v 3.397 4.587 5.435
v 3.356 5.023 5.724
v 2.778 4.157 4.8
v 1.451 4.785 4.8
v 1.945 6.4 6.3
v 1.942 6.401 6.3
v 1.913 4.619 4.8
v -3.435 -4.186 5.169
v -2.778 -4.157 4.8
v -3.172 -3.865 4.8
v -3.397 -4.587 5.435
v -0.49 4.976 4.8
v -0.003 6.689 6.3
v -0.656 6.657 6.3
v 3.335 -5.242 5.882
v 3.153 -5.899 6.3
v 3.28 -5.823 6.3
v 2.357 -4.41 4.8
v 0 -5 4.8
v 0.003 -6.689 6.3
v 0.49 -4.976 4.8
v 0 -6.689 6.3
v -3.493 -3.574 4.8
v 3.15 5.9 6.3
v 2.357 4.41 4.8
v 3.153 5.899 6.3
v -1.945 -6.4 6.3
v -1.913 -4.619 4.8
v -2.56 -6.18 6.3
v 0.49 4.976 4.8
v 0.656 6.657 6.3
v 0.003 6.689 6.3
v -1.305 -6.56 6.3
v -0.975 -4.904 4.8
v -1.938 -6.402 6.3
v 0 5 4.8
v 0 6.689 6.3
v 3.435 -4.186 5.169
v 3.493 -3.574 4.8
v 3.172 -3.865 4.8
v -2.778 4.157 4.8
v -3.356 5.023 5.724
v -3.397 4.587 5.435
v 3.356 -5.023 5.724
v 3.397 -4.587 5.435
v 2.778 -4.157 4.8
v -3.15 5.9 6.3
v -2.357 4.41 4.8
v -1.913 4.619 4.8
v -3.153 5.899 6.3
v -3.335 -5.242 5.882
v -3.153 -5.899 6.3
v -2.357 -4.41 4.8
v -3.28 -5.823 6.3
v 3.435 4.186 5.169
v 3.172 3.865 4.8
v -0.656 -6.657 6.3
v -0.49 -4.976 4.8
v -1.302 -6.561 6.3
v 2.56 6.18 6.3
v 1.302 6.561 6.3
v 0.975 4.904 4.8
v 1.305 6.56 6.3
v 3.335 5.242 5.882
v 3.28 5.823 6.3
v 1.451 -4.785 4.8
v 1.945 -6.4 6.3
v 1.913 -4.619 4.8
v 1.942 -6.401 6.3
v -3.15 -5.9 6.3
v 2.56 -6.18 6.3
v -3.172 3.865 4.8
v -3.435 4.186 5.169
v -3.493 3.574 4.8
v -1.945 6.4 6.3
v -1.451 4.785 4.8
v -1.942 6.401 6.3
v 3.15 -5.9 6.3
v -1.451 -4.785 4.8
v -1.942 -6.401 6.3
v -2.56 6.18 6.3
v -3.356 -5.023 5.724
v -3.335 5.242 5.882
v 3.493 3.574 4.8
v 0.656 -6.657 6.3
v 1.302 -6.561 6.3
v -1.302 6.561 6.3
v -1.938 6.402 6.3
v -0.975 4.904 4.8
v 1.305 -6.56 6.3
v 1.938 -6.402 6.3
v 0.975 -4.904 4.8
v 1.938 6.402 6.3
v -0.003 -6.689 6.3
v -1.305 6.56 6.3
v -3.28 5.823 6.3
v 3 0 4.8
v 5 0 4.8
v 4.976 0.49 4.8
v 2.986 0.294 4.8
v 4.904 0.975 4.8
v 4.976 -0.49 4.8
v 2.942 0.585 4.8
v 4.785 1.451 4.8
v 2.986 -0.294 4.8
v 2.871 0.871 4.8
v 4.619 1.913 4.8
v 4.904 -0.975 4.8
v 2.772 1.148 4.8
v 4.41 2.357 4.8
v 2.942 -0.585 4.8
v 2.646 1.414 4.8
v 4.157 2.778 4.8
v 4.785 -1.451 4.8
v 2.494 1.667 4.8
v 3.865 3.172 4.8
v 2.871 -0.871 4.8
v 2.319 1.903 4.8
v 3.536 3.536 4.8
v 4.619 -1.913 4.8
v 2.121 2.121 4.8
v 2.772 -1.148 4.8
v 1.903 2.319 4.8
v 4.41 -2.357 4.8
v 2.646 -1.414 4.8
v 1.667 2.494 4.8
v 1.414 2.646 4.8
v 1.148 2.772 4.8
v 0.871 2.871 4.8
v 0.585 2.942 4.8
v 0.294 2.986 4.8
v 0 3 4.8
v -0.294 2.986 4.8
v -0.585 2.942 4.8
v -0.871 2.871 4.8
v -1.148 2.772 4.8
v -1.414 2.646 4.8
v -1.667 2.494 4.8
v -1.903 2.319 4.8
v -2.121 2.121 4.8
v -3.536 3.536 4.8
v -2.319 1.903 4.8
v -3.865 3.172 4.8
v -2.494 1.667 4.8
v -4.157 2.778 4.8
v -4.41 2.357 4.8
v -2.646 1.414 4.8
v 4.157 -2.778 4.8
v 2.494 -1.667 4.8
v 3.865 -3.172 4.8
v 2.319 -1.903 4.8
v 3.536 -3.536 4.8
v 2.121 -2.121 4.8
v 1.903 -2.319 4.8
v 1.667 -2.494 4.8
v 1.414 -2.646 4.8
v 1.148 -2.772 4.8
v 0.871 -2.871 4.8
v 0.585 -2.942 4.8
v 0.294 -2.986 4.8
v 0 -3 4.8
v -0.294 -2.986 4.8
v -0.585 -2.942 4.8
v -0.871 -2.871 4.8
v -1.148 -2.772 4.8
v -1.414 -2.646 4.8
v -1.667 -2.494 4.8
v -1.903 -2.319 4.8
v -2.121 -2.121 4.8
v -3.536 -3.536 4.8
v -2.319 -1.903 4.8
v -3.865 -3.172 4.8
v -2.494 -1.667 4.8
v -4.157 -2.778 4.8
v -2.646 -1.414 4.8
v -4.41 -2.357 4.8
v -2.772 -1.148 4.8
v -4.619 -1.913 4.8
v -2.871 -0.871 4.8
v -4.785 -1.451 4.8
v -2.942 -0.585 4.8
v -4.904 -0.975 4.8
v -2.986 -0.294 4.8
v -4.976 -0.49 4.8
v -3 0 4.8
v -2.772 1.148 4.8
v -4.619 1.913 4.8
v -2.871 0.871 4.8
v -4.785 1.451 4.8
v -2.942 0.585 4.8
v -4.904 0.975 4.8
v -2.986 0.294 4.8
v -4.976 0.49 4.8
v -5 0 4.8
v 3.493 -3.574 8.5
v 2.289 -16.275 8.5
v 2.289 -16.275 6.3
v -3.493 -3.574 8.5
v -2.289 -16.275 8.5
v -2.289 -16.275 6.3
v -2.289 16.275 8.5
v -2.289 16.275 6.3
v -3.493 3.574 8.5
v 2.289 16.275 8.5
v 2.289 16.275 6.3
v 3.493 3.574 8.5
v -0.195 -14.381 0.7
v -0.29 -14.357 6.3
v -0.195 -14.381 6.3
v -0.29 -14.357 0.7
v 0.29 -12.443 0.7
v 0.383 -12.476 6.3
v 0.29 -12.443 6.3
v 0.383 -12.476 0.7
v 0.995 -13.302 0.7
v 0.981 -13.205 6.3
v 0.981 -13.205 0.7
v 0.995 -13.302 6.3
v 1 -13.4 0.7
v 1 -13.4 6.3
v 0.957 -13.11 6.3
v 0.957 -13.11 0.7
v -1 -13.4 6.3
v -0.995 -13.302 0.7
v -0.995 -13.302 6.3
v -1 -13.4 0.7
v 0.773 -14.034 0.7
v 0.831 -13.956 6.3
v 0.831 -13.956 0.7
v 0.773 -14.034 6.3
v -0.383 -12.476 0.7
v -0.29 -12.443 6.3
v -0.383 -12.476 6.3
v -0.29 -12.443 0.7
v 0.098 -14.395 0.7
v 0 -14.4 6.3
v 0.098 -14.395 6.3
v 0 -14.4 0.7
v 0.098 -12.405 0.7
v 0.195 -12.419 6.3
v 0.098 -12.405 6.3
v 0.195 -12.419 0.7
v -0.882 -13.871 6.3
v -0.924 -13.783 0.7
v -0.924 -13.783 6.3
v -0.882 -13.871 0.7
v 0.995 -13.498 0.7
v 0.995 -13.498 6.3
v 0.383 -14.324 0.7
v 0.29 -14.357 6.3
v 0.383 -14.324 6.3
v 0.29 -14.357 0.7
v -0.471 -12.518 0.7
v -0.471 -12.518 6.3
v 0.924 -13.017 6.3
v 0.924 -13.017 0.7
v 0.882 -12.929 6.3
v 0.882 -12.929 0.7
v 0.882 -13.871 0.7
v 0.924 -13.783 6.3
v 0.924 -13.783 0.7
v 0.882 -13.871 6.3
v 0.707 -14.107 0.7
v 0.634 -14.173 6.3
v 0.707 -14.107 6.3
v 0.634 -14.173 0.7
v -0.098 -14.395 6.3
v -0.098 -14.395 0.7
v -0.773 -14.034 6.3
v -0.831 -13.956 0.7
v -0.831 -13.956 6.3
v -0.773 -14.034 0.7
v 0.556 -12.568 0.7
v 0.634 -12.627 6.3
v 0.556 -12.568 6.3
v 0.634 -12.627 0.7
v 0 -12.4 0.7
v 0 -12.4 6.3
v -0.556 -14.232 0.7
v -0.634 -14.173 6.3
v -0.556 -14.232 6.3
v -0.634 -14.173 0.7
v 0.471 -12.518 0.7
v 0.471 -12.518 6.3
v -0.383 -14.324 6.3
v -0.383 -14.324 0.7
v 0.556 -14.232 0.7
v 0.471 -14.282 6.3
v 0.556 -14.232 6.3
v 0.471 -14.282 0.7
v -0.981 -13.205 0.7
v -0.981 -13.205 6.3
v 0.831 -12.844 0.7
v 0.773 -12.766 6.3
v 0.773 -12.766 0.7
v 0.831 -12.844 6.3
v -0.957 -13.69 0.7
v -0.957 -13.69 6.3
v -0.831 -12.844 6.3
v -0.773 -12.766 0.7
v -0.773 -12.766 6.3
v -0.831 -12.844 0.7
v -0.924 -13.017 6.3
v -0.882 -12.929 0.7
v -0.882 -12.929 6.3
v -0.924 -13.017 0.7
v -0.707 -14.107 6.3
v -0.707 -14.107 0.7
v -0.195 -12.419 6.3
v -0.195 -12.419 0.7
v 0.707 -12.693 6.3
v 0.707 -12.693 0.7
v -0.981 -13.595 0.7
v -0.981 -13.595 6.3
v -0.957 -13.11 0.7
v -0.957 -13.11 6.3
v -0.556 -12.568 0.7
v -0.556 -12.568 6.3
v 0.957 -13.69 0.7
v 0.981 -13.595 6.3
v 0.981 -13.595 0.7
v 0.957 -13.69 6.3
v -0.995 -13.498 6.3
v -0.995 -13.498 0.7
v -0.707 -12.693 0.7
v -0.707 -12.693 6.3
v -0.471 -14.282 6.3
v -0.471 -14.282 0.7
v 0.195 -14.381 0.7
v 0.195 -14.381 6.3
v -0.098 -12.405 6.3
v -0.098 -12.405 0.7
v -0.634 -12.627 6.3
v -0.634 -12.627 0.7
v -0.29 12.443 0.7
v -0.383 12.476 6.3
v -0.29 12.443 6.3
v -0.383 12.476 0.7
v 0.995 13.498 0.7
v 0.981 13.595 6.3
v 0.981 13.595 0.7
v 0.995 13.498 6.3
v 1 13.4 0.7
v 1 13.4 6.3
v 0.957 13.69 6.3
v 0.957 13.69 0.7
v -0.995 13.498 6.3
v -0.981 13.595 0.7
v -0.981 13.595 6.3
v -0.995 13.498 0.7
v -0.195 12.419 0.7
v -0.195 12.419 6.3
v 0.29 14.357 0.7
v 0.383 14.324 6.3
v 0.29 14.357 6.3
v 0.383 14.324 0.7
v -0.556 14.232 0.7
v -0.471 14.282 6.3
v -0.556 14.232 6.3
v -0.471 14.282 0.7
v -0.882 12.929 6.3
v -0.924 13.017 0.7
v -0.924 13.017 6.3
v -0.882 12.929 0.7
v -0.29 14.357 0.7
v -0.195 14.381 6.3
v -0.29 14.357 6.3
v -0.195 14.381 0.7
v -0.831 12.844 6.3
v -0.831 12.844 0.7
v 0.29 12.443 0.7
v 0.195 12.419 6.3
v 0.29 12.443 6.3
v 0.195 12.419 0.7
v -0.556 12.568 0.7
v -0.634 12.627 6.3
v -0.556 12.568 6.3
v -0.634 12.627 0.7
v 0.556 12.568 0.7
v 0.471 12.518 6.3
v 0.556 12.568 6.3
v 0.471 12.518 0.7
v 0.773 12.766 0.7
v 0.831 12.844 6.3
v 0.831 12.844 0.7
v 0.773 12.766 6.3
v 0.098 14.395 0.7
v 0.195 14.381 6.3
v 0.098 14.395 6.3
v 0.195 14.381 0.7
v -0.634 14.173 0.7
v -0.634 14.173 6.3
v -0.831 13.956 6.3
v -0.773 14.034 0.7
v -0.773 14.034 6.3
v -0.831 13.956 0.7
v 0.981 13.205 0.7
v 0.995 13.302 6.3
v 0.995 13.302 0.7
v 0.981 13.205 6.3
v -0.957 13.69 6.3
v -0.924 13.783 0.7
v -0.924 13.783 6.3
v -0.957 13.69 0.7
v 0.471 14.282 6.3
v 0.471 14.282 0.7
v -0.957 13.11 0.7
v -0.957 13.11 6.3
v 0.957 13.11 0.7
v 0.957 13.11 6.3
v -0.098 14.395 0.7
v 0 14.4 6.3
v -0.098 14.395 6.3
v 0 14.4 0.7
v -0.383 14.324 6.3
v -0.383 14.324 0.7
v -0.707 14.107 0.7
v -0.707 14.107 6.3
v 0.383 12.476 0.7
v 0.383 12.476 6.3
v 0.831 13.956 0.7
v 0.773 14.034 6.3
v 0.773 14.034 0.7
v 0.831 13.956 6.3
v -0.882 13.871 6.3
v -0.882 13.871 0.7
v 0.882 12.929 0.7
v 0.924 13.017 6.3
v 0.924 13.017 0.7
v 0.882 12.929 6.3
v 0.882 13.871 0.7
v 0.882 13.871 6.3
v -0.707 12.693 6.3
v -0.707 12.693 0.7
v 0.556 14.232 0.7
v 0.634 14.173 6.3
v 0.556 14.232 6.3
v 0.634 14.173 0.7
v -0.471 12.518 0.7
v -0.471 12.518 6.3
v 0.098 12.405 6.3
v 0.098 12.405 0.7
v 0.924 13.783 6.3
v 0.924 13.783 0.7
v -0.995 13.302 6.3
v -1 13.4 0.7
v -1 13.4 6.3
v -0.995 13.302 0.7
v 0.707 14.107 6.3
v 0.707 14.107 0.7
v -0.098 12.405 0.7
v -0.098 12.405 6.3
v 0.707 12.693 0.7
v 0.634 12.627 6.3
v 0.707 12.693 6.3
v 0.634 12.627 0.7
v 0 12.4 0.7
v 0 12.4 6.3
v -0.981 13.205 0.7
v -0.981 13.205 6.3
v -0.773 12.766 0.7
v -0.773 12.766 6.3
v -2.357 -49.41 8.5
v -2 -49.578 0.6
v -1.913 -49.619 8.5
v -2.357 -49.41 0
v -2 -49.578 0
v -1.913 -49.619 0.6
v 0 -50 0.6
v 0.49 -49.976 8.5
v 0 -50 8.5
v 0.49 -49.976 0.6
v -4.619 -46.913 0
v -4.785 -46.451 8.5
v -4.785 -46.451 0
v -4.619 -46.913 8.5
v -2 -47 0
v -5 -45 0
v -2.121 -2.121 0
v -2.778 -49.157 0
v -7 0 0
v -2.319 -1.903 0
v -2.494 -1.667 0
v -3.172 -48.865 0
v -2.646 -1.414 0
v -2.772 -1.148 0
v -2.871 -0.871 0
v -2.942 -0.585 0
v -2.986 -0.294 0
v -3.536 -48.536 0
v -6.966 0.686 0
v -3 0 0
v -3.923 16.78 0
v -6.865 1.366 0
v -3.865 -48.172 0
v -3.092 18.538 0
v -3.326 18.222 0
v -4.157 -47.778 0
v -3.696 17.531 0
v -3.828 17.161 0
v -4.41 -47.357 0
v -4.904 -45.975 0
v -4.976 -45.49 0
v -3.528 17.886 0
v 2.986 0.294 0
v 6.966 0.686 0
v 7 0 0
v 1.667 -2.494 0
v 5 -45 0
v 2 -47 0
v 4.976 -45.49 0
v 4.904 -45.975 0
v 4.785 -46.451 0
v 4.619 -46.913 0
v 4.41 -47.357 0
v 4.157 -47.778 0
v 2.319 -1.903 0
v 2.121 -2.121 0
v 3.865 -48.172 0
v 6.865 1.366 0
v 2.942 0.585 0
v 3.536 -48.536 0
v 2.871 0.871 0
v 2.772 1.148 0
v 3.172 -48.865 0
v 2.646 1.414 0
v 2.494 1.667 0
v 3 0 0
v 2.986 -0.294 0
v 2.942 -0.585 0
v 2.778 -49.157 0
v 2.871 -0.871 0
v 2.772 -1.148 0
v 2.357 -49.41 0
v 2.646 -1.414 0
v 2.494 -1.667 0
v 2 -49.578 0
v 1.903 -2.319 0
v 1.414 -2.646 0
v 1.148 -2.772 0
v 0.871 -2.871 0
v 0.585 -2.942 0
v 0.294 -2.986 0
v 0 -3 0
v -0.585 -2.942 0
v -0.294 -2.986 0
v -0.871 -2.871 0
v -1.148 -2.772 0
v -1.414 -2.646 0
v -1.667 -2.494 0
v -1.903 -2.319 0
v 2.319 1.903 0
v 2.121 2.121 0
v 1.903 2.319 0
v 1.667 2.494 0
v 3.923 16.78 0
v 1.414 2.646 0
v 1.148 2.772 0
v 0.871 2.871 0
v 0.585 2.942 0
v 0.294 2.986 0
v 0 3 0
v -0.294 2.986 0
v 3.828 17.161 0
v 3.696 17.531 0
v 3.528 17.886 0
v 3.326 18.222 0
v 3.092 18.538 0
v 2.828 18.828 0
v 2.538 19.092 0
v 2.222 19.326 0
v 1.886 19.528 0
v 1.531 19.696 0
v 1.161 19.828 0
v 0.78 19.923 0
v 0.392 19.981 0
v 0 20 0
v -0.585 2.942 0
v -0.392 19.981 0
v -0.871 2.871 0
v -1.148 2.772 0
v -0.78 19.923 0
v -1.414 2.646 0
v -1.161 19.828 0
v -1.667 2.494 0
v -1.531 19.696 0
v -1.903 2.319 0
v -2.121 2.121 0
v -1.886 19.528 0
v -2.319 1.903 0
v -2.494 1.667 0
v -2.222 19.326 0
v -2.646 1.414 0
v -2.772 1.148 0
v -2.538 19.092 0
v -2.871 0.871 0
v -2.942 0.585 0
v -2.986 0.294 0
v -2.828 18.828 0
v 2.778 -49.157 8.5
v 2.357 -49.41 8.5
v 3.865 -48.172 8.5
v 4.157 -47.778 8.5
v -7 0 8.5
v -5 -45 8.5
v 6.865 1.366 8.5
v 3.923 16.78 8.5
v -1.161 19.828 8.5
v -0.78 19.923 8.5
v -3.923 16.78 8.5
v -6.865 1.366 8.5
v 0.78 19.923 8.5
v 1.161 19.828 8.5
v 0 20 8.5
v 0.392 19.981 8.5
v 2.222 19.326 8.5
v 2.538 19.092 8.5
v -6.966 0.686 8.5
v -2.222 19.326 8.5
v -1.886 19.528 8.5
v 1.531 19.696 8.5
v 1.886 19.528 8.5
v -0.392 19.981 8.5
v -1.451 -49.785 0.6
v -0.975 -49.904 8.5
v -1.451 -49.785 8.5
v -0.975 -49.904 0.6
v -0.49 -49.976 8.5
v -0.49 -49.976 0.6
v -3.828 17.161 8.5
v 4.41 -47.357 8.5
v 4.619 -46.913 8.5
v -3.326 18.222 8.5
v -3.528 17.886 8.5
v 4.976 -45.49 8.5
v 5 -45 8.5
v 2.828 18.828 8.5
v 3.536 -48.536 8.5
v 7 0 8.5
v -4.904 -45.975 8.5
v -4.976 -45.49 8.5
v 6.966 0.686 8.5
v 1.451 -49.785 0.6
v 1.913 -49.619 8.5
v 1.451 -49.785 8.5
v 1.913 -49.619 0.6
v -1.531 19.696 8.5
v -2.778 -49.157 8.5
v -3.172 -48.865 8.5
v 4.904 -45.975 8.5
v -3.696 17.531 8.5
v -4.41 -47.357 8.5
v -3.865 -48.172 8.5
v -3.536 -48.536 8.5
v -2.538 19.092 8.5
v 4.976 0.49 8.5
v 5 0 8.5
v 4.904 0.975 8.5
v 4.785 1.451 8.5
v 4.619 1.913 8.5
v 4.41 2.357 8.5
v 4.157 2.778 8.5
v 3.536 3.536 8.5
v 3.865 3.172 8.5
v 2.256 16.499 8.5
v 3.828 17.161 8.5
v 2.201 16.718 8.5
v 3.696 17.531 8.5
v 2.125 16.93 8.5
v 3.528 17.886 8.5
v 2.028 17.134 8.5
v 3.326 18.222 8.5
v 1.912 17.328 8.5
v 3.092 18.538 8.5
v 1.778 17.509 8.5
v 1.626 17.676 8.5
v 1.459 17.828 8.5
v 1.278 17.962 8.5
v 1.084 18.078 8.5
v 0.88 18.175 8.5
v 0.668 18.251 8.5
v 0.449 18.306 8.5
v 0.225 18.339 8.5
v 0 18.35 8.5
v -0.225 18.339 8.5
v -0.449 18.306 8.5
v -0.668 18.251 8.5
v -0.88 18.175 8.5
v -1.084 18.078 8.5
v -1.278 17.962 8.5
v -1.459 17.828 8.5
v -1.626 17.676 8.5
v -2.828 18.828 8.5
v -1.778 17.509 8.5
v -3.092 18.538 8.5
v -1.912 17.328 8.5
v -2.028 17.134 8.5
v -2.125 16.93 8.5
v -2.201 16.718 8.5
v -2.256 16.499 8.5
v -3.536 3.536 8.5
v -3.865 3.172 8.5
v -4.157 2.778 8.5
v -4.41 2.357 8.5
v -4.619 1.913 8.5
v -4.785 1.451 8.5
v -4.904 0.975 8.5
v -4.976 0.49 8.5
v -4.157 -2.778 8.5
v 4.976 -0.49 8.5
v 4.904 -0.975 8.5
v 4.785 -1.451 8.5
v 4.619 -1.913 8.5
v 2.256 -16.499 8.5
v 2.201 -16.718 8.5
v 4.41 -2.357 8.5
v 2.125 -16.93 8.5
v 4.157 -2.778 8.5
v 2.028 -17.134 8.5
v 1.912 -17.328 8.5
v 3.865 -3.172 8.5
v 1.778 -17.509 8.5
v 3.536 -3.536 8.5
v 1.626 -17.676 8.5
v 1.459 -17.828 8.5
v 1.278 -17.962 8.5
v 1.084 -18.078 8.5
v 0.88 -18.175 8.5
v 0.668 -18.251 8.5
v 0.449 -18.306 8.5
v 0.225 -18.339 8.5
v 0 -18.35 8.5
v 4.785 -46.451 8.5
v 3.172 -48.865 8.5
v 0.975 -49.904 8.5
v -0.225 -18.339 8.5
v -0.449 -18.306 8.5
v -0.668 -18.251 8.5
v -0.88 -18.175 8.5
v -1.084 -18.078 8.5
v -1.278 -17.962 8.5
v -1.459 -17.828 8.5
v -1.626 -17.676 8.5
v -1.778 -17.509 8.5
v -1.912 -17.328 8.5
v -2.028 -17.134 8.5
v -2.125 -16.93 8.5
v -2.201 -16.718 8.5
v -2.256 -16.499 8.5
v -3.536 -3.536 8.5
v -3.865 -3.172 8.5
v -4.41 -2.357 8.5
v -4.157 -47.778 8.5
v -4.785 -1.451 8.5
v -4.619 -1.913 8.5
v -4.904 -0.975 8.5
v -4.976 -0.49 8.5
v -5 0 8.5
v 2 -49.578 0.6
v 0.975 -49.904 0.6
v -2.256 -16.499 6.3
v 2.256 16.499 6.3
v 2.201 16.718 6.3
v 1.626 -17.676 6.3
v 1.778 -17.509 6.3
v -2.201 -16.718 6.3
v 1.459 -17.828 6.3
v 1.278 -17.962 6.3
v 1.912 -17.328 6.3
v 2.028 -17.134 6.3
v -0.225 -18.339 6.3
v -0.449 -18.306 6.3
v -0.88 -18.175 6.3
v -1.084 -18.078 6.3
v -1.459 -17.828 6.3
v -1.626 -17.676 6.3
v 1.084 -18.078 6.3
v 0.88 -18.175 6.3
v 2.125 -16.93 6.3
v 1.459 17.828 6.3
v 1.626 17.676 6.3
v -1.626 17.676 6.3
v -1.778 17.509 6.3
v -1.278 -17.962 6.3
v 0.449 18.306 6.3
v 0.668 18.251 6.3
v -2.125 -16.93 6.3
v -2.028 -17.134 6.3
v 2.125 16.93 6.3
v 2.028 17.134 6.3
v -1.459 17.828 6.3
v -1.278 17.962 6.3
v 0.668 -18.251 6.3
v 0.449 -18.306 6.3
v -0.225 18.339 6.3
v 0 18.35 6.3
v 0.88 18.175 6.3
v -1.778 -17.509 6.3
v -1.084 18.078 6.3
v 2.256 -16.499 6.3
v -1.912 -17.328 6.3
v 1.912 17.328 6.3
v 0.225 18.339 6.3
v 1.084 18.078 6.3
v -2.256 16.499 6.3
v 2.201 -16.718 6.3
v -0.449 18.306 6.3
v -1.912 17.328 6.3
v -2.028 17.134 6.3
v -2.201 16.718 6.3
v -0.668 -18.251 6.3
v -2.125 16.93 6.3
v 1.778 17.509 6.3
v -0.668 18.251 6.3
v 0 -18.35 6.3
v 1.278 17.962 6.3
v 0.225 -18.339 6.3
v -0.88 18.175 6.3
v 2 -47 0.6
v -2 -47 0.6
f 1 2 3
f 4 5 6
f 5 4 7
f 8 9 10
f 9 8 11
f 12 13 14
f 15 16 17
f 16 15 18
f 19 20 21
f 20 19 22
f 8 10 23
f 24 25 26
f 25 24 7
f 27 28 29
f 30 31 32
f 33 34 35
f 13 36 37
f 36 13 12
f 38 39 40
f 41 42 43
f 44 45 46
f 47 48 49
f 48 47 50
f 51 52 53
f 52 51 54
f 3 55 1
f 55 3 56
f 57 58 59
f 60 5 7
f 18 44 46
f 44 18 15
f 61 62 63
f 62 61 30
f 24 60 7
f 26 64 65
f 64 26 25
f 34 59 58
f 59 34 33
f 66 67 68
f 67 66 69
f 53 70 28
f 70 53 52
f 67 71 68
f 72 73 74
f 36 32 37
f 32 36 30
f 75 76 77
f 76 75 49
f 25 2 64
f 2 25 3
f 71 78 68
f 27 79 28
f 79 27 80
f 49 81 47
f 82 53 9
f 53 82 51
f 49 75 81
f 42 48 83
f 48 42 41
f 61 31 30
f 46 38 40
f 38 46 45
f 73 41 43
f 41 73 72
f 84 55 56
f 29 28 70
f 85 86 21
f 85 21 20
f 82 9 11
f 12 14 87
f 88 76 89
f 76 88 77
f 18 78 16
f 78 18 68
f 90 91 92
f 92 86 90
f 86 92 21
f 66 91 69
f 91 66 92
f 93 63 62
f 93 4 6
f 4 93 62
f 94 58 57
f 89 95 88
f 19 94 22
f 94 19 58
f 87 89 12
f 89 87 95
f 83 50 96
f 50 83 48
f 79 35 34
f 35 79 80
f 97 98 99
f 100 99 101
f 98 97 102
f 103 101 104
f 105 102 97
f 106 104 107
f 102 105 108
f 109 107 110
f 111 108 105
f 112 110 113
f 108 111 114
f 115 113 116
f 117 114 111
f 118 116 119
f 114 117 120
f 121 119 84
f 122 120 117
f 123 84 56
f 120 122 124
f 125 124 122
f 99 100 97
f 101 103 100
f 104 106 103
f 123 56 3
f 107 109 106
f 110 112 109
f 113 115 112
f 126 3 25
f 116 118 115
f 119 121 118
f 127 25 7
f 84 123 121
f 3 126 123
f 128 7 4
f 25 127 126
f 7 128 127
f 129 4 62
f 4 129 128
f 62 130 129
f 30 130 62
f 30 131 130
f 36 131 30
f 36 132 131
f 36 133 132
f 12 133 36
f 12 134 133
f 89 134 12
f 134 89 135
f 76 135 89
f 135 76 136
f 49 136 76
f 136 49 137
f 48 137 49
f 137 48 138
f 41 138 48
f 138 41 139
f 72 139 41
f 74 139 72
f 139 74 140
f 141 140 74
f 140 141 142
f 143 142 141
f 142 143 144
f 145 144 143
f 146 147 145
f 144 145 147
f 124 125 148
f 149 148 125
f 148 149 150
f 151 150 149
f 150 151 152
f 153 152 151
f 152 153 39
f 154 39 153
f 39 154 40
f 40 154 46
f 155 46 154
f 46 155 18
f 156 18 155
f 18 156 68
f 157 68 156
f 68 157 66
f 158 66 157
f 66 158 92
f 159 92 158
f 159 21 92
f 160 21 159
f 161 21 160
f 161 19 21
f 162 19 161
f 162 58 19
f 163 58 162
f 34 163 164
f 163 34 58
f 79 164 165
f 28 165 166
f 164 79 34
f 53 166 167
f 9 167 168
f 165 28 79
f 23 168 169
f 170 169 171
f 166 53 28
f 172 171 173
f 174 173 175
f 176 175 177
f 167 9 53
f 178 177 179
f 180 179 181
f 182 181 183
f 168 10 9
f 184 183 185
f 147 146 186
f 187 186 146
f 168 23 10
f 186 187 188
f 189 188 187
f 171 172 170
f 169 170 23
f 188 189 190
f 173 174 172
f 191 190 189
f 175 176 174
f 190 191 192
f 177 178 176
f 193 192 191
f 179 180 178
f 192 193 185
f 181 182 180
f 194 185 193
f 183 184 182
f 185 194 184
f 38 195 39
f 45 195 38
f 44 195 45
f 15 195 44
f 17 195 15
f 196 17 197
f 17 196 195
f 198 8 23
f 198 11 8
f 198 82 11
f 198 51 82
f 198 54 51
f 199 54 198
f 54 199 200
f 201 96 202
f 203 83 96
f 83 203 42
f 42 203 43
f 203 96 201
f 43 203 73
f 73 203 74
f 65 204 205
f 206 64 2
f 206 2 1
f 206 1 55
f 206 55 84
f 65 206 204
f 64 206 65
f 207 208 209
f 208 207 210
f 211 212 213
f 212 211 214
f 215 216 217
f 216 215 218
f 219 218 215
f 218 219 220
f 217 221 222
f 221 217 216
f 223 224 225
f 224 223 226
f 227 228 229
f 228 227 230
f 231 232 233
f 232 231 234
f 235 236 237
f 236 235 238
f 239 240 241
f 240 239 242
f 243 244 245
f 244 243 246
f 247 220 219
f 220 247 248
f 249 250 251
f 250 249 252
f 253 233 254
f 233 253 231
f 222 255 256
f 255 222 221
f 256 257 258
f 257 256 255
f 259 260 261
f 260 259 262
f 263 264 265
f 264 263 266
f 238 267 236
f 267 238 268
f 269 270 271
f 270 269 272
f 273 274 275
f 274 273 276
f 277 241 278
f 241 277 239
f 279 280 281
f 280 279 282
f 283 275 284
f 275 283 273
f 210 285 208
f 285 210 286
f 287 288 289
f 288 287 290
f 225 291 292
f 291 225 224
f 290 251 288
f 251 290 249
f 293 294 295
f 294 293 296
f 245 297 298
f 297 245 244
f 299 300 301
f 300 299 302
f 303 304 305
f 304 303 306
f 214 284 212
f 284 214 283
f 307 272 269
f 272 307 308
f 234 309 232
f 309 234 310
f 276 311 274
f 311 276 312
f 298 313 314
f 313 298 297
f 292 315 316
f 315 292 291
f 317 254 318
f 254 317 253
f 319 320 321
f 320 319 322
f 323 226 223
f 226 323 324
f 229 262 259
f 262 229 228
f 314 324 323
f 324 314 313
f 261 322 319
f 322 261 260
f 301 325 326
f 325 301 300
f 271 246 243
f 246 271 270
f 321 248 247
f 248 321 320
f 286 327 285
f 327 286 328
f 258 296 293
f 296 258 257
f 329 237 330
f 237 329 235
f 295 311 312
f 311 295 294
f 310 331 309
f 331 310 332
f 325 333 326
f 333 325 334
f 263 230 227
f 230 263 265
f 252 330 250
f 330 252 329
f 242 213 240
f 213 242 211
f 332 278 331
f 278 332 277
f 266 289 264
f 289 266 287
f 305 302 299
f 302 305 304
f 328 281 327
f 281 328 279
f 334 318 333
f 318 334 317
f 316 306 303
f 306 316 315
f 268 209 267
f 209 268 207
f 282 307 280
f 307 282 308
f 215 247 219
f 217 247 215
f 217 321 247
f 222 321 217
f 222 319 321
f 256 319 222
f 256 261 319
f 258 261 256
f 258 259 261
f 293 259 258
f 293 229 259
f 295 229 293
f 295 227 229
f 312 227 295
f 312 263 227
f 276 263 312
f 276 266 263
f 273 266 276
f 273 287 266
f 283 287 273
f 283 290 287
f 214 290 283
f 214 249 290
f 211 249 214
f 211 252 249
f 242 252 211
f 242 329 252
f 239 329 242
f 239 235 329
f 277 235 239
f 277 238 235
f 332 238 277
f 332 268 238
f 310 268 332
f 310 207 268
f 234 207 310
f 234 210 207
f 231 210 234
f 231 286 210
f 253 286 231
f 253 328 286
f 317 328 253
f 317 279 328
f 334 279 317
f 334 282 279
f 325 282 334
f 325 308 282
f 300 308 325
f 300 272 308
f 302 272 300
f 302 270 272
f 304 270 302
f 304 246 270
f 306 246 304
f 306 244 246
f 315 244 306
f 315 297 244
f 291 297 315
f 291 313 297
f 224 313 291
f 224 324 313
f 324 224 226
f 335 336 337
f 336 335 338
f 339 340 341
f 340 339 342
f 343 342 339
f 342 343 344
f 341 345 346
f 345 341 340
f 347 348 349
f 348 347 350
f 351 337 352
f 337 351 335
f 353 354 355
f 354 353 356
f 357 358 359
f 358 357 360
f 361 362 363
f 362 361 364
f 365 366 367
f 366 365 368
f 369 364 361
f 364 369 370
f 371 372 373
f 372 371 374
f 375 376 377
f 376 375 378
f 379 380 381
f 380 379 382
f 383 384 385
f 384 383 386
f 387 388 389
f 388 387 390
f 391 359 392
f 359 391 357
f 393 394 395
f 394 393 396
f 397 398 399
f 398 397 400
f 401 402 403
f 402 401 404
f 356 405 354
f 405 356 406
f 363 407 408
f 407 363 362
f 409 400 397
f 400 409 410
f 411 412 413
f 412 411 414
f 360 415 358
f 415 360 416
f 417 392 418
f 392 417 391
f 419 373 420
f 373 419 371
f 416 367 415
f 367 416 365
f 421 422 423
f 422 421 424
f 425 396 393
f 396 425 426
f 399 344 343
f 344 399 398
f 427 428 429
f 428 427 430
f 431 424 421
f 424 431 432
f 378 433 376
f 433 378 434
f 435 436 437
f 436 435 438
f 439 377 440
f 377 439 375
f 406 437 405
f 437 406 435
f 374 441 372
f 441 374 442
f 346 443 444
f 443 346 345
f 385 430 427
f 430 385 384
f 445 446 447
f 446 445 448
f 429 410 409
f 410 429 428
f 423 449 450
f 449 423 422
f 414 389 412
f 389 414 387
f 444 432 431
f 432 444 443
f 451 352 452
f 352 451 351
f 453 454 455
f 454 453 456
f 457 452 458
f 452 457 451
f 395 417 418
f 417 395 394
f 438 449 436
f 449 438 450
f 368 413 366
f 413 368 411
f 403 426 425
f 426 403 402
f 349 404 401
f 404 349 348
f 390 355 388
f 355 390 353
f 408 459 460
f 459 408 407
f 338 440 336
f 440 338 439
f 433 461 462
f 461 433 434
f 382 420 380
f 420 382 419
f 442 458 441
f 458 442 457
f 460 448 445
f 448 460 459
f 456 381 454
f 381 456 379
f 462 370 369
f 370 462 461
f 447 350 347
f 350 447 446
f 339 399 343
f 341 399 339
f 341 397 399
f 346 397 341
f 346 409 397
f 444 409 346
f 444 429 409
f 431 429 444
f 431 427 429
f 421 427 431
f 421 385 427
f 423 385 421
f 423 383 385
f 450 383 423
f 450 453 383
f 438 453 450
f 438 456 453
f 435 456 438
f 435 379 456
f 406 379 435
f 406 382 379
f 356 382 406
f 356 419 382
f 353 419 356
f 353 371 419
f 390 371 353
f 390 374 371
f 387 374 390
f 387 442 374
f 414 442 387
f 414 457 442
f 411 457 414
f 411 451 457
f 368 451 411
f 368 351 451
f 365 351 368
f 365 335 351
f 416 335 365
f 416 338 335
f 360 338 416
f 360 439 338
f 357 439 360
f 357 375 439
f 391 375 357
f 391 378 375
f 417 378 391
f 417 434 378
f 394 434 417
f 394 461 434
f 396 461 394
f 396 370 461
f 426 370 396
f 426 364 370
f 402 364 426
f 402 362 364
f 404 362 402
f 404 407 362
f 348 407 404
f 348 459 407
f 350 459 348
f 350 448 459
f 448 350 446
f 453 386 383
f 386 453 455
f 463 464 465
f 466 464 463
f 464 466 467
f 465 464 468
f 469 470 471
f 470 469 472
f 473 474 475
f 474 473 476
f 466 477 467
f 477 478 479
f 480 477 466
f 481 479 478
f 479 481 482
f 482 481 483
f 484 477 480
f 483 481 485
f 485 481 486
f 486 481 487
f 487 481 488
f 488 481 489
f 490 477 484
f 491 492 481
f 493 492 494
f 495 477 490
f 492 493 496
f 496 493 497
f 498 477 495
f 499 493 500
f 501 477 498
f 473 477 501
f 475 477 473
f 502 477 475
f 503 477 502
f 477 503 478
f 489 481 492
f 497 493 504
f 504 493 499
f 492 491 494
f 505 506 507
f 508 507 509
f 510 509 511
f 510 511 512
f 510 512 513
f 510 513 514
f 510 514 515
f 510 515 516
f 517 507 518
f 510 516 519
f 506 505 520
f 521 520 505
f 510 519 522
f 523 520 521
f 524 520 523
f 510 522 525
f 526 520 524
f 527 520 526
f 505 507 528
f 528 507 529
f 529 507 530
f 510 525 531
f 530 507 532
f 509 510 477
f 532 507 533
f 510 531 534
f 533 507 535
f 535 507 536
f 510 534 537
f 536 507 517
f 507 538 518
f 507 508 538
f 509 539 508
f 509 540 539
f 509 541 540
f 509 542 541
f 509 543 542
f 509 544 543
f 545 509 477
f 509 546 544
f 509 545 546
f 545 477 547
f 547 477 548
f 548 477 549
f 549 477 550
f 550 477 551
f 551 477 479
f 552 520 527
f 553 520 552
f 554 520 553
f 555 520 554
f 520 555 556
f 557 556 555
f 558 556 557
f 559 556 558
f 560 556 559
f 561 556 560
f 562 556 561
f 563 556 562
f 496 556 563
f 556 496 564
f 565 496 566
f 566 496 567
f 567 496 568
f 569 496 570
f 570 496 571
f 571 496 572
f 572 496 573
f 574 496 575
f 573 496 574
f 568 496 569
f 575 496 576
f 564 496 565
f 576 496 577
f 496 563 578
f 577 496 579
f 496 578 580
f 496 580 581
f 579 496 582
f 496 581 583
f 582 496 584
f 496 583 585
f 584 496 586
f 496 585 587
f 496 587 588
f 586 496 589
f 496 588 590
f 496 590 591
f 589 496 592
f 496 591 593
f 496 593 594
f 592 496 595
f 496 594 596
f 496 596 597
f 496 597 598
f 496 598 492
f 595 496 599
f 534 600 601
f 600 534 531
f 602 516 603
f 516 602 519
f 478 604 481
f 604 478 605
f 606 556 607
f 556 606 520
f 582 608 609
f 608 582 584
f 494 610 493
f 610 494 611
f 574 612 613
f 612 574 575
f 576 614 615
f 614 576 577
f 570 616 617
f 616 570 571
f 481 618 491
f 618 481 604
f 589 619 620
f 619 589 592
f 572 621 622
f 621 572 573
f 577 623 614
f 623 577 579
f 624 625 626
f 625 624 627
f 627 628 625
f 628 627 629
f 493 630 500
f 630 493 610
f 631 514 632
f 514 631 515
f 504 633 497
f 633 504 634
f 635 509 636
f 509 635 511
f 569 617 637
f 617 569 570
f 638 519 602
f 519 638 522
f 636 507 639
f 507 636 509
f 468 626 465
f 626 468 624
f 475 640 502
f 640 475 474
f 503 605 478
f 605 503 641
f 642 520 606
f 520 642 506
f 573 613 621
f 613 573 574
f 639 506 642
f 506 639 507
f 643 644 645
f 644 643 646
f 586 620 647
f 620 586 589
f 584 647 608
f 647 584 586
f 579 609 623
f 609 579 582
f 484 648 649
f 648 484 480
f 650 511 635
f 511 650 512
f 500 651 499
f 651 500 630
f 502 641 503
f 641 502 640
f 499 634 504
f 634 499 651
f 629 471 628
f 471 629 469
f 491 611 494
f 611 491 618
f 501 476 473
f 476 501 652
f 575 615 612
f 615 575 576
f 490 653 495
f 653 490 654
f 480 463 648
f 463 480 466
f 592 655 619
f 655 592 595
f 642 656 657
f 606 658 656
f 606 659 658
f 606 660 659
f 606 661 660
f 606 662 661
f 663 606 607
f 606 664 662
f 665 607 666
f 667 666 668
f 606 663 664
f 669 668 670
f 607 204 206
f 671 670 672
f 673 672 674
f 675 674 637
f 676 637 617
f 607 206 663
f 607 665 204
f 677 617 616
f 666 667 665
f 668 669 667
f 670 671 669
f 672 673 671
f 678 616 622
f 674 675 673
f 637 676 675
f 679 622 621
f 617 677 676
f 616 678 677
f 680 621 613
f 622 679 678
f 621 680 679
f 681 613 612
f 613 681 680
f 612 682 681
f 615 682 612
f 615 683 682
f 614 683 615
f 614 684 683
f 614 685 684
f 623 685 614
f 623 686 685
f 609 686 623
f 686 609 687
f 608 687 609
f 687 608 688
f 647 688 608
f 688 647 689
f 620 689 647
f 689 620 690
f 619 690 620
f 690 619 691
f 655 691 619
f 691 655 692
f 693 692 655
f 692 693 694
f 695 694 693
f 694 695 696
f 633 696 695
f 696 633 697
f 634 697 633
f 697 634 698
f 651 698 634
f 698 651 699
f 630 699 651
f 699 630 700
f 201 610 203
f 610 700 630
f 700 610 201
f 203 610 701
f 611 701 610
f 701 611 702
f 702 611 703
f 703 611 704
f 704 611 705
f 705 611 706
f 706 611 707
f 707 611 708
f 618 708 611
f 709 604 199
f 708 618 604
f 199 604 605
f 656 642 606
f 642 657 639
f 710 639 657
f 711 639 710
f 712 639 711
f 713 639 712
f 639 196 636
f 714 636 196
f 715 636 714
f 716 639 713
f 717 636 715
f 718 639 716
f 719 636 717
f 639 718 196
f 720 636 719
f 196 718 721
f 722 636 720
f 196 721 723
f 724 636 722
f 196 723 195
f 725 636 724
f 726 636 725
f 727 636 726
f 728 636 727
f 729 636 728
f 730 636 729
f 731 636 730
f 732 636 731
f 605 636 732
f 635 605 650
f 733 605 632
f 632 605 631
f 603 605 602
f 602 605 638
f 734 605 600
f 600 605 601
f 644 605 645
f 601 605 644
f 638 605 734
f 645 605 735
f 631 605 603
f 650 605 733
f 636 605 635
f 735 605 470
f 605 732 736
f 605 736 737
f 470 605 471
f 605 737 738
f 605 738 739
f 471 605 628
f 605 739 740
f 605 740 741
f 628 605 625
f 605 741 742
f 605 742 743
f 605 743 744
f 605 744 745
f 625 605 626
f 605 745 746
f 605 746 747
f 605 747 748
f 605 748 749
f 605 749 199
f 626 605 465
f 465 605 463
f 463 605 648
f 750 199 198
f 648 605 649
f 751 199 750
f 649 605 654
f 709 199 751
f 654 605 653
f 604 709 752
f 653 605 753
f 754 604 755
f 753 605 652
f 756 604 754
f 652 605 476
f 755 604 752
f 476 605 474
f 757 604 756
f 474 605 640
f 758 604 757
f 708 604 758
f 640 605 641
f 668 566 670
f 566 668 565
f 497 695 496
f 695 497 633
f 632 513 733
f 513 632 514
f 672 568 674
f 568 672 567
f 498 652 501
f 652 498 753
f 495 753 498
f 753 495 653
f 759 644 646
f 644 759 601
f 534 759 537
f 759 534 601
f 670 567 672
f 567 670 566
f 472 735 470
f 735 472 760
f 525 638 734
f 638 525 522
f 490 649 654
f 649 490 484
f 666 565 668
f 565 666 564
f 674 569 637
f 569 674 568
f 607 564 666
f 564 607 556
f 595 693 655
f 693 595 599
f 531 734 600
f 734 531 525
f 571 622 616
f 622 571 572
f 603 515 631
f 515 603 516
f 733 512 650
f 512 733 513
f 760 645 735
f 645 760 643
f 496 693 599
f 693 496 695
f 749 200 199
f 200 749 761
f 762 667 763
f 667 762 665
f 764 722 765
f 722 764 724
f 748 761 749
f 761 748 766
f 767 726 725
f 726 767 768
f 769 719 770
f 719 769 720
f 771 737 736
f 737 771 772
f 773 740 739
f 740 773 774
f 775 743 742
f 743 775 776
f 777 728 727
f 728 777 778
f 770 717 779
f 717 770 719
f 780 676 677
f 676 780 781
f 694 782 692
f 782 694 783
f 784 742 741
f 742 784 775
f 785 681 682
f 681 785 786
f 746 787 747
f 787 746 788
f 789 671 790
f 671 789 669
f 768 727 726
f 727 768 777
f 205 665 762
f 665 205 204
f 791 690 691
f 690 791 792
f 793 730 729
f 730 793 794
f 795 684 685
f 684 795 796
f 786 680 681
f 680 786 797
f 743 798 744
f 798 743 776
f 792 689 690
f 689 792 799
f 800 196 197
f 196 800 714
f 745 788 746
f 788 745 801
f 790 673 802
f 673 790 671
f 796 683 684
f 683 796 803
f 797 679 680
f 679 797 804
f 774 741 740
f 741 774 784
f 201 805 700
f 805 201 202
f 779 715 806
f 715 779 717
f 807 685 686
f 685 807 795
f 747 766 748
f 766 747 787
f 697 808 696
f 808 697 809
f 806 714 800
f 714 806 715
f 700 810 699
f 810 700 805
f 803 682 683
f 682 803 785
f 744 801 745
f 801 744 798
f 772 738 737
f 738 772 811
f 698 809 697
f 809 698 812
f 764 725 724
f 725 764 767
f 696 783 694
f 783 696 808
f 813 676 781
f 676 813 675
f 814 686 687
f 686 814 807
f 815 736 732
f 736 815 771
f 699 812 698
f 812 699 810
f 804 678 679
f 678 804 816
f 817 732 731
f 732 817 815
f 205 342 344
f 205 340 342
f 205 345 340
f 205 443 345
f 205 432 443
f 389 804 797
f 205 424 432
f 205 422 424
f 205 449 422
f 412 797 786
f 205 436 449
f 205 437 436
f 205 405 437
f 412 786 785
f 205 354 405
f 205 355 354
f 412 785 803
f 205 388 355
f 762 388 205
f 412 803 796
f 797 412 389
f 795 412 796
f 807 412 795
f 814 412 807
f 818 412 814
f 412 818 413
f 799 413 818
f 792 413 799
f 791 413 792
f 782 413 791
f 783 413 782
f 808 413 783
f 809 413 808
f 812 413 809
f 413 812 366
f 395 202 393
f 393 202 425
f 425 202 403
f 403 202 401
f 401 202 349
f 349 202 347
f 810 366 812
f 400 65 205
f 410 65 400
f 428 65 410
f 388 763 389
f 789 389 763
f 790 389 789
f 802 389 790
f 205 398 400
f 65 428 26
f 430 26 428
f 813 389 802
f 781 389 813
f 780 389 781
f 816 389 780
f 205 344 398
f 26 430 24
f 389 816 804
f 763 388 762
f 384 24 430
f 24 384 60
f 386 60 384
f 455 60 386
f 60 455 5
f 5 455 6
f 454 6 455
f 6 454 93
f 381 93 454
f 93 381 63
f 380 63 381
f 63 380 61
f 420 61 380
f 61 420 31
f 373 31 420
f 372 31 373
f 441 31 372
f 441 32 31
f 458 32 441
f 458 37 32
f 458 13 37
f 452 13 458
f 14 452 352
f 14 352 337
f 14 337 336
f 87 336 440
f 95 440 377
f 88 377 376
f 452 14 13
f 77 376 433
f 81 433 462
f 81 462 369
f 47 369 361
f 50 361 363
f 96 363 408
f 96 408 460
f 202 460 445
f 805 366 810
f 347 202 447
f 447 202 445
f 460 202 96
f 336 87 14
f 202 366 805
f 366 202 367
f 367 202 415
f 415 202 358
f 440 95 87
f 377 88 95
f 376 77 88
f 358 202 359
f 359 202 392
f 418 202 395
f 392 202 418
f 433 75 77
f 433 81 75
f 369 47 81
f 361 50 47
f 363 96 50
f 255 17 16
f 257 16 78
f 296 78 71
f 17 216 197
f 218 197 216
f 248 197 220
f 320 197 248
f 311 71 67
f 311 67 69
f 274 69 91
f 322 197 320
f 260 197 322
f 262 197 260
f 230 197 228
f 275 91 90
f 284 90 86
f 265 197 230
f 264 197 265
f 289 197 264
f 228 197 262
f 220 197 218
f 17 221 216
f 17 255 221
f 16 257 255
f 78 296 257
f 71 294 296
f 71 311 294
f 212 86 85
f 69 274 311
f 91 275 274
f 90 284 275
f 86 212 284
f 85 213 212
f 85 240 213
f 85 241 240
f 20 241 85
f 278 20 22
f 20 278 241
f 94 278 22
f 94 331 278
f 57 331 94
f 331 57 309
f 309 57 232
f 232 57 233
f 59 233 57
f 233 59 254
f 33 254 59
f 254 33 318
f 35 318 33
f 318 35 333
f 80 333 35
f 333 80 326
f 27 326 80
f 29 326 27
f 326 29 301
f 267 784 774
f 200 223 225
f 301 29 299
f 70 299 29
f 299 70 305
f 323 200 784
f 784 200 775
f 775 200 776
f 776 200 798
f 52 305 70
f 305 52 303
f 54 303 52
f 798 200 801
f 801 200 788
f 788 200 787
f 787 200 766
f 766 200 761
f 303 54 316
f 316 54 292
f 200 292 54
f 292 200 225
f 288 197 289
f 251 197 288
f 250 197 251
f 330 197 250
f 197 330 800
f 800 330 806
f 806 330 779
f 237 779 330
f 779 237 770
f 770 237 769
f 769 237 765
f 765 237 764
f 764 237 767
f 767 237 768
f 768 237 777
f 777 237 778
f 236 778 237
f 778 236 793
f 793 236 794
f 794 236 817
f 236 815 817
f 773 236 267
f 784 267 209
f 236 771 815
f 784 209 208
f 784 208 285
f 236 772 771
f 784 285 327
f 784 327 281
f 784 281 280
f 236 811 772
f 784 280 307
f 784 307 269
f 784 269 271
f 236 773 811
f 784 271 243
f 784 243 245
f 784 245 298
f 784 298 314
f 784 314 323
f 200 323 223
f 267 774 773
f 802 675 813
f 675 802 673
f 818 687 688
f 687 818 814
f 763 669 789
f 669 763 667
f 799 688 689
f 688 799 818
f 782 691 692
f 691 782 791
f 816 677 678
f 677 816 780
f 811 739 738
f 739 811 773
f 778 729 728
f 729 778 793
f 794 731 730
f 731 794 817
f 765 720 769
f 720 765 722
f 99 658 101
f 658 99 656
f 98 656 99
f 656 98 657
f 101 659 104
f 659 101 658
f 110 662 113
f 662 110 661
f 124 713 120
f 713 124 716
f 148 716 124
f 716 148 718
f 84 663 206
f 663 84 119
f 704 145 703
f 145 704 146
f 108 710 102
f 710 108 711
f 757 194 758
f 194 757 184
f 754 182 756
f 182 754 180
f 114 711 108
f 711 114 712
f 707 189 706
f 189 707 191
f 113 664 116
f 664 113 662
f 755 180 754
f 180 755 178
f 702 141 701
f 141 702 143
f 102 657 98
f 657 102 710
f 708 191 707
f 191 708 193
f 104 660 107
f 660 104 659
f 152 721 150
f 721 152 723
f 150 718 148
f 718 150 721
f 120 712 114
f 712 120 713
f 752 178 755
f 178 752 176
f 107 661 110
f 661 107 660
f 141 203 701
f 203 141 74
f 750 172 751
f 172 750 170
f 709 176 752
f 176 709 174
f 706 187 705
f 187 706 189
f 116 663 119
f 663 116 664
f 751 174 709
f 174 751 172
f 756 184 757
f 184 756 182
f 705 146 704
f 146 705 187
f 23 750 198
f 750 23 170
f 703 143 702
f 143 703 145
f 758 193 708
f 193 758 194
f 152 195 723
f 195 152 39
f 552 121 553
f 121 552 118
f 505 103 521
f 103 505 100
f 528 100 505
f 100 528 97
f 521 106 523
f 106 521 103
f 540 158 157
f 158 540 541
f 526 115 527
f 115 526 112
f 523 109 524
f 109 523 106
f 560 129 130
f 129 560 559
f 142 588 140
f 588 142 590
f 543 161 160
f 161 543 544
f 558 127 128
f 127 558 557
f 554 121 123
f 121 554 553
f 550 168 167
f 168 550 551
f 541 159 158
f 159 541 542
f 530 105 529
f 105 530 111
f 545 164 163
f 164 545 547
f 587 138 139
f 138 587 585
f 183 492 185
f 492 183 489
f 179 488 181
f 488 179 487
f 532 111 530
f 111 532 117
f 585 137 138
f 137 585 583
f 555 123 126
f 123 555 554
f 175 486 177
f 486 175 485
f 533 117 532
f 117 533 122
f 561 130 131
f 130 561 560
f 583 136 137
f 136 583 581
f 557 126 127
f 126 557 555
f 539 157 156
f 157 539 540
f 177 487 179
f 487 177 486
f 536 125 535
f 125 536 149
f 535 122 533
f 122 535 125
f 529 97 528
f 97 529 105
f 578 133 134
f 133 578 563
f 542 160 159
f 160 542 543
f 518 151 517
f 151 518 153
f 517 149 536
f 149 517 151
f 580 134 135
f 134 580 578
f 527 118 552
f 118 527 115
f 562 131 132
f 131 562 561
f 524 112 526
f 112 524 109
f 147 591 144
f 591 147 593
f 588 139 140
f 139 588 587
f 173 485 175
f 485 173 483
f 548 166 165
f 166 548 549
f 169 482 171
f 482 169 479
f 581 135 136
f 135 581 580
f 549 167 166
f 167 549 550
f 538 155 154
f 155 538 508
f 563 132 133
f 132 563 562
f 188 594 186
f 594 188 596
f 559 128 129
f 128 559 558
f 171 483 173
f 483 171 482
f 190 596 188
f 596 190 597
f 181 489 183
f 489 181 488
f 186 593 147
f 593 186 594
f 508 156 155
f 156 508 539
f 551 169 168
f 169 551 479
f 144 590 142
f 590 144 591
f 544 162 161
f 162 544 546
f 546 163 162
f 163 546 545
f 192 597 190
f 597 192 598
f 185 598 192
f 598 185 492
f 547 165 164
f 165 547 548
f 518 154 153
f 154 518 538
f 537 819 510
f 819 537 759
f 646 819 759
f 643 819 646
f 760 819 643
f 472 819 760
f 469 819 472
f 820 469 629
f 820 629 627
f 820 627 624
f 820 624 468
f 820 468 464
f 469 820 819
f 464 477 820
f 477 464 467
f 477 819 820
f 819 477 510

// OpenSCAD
// Leg V6: uses only the screws from the servo bag (owner's discovery, 2026-11-27).
//   Large pointed screws (2): about 2.2 thread x 7 shank, flanged head about 4.7 dia x 1.6.
//     They go UP through the horn's 4th arm holes (from the motor side) into pilot holes in this leg.
//   Small screw (1): about 2.0 thread x 3.5 shank, head about 2.8. It holds the horn on the motor
//     shaft; a screwdriver reaches it through the big centre hole.
//   Screw sizes measured from grid-sheet photos, about +/-0.3mm.
// Clearances from Leg V4 (V3 printed too tight). Owner printed V3 (2026-11-27): horn and screws too tight.
// V3 layout: deeper disc recess plus sloped room for the ramps. Shaped around the owner's measured double-arm horn. Units mm. OpenSCAD 2021.01.
// Horn measured 2026-11-27 from grid-sheet photos (about +/-0.2mm), not calipers:
//   overall length 35.7, hub boss 7.2 dia x 2.0 tall (spline side),
//   screw-side bump (Andrew spotted this, photos 2026-11-27): a straight-sided disc,
//   about 8.0-8.7 dia x 1.1 tall, PLUS small ramps where it meets the arm. The ramps
//   rise from the arm face up to the disc top, so from the side the bump looks sloped.
//   Owner's printed gauge: arm 2.0 thick, spline boss 7.5.
//   arm 2.0 thick,
//   arm 6.0 wide beside the hub tapering to 3.6 at the rounded tip,
//   arm holes about 1.4 dia at 5.9, 8.4, 10.9, 13.4, 15.9 from centre.
// The horn stays as mounted on the servo: tall spline boss DOWN onto the motor, disc with ramps UP into this leg pocket. The leg sits on top like a lid.
// Order: horn into leg, 2 large screws, push onto shaft, small centre screw.
// Print pocket side UP. No supports.
$fn=64;

horn_len=35.7; arm_t=2.0; arm_w_hub=6.0; arm_w_tip=3.6; hub_x=3.5;
disc_d=8.7; bump_h=1.1;   // largest measured disc; height from the side photo
rc_d=disc_d+1.3;           // straight recess for the disc
rc_h=bump_h+0.4;           // a little deeper than the disc
ramp_d=13.4;               // ramp clearance: widens to this at the arm face, only inside the arm pocket
pilot_r=13.4;     // 4th hole from the centre, both arms
access_d=6.0;      // screwdriver + small screw head
pilot_d=2.0;       // for the 2.2mm self-tapping screws; this printer prints holes small
pilot_depth=5.6;   // 7mm shank minus 2mm horn, plus a little
clr=1.0;          // total extra width/length in the pocket (0.5 each side; V3 had 0.2 and was too tight)

leg_t=8.5; hip_d=14; foot_d=10; leg_len=45; tail_d=8; tail_len=16;
pocket=arm_t+0.2;             // arm sits just below the leg face
recess=pocket+rc_h;           // total depth to the bottom of the sloped recess
floor_t=leg_t-recess;         // plastic under the hub that the screw clamps
tip_c=horn_len/2-arm_w_tip/2;

module leg_outline() {
  hull() { circle(d=hip_d); translate([0,-leg_len]) circle(d=foot_d); }
  hull() { circle(d=hip_d); translate([0,tail_len]) circle(d=tail_d); }
}
module arm_outline() {
  hull() for(s=[-1,1]) {
    translate([0,s*hub_x]) square([arm_w_hub+clr,.01],center=true);
    translate([0,s*tip_c]) circle(d=arm_w_tip+clr);
  }
}
module leg() {
  difference() {
    linear_extrude(leg_t) leg_outline();
    translate([0,0,leg_t-pocket]) linear_extrude(pocket+.1) arm_outline();
    translate([0,0,leg_t-recess]) cylinder(d=rc_d,h=recess+.1);                 // straight-sided disc recess
    intersection() {                                                             // sloped room for the ramps
      translate([0,0,leg_t-recess]) cylinder(d1=rc_d,d2=ramp_d,h=rc_h+.01);
      translate([0,0,leg_t-recess-.1]) linear_extrude(rc_h+.2) arm_outline();
    }
    translate([0,0,-.1]) cylinder(d=access_d,h=leg_t+.2);         // reach the small centre screw
    for(s=[-1,1]) translate([0,s*pilot_r,leg_t-pocket-pilot_depth]) cylinder(d=pilot_d,h=pilot_depth+.1); // large servo-bag screws
    translate([-2,-leg_len-foot_d/2-1,-.1]) cube([4,4,0.7]);      // toe mark on the bed face
  }
}
leg();

assert(floor_t>=2,"Plastic under the hub for the clamp screw");
assert(tail_len+tail_d/2-(horn_len+clr)/2>=1.5,"Wall beyond the upper horn tip");
assert((hip_d-rc_d)/2>=1.6,"Side wall around the hub recess");
assert(leg_t-pocket-pilot_depth>=0.6,"Pilot holes stay blind: screw tips do not poke out");
